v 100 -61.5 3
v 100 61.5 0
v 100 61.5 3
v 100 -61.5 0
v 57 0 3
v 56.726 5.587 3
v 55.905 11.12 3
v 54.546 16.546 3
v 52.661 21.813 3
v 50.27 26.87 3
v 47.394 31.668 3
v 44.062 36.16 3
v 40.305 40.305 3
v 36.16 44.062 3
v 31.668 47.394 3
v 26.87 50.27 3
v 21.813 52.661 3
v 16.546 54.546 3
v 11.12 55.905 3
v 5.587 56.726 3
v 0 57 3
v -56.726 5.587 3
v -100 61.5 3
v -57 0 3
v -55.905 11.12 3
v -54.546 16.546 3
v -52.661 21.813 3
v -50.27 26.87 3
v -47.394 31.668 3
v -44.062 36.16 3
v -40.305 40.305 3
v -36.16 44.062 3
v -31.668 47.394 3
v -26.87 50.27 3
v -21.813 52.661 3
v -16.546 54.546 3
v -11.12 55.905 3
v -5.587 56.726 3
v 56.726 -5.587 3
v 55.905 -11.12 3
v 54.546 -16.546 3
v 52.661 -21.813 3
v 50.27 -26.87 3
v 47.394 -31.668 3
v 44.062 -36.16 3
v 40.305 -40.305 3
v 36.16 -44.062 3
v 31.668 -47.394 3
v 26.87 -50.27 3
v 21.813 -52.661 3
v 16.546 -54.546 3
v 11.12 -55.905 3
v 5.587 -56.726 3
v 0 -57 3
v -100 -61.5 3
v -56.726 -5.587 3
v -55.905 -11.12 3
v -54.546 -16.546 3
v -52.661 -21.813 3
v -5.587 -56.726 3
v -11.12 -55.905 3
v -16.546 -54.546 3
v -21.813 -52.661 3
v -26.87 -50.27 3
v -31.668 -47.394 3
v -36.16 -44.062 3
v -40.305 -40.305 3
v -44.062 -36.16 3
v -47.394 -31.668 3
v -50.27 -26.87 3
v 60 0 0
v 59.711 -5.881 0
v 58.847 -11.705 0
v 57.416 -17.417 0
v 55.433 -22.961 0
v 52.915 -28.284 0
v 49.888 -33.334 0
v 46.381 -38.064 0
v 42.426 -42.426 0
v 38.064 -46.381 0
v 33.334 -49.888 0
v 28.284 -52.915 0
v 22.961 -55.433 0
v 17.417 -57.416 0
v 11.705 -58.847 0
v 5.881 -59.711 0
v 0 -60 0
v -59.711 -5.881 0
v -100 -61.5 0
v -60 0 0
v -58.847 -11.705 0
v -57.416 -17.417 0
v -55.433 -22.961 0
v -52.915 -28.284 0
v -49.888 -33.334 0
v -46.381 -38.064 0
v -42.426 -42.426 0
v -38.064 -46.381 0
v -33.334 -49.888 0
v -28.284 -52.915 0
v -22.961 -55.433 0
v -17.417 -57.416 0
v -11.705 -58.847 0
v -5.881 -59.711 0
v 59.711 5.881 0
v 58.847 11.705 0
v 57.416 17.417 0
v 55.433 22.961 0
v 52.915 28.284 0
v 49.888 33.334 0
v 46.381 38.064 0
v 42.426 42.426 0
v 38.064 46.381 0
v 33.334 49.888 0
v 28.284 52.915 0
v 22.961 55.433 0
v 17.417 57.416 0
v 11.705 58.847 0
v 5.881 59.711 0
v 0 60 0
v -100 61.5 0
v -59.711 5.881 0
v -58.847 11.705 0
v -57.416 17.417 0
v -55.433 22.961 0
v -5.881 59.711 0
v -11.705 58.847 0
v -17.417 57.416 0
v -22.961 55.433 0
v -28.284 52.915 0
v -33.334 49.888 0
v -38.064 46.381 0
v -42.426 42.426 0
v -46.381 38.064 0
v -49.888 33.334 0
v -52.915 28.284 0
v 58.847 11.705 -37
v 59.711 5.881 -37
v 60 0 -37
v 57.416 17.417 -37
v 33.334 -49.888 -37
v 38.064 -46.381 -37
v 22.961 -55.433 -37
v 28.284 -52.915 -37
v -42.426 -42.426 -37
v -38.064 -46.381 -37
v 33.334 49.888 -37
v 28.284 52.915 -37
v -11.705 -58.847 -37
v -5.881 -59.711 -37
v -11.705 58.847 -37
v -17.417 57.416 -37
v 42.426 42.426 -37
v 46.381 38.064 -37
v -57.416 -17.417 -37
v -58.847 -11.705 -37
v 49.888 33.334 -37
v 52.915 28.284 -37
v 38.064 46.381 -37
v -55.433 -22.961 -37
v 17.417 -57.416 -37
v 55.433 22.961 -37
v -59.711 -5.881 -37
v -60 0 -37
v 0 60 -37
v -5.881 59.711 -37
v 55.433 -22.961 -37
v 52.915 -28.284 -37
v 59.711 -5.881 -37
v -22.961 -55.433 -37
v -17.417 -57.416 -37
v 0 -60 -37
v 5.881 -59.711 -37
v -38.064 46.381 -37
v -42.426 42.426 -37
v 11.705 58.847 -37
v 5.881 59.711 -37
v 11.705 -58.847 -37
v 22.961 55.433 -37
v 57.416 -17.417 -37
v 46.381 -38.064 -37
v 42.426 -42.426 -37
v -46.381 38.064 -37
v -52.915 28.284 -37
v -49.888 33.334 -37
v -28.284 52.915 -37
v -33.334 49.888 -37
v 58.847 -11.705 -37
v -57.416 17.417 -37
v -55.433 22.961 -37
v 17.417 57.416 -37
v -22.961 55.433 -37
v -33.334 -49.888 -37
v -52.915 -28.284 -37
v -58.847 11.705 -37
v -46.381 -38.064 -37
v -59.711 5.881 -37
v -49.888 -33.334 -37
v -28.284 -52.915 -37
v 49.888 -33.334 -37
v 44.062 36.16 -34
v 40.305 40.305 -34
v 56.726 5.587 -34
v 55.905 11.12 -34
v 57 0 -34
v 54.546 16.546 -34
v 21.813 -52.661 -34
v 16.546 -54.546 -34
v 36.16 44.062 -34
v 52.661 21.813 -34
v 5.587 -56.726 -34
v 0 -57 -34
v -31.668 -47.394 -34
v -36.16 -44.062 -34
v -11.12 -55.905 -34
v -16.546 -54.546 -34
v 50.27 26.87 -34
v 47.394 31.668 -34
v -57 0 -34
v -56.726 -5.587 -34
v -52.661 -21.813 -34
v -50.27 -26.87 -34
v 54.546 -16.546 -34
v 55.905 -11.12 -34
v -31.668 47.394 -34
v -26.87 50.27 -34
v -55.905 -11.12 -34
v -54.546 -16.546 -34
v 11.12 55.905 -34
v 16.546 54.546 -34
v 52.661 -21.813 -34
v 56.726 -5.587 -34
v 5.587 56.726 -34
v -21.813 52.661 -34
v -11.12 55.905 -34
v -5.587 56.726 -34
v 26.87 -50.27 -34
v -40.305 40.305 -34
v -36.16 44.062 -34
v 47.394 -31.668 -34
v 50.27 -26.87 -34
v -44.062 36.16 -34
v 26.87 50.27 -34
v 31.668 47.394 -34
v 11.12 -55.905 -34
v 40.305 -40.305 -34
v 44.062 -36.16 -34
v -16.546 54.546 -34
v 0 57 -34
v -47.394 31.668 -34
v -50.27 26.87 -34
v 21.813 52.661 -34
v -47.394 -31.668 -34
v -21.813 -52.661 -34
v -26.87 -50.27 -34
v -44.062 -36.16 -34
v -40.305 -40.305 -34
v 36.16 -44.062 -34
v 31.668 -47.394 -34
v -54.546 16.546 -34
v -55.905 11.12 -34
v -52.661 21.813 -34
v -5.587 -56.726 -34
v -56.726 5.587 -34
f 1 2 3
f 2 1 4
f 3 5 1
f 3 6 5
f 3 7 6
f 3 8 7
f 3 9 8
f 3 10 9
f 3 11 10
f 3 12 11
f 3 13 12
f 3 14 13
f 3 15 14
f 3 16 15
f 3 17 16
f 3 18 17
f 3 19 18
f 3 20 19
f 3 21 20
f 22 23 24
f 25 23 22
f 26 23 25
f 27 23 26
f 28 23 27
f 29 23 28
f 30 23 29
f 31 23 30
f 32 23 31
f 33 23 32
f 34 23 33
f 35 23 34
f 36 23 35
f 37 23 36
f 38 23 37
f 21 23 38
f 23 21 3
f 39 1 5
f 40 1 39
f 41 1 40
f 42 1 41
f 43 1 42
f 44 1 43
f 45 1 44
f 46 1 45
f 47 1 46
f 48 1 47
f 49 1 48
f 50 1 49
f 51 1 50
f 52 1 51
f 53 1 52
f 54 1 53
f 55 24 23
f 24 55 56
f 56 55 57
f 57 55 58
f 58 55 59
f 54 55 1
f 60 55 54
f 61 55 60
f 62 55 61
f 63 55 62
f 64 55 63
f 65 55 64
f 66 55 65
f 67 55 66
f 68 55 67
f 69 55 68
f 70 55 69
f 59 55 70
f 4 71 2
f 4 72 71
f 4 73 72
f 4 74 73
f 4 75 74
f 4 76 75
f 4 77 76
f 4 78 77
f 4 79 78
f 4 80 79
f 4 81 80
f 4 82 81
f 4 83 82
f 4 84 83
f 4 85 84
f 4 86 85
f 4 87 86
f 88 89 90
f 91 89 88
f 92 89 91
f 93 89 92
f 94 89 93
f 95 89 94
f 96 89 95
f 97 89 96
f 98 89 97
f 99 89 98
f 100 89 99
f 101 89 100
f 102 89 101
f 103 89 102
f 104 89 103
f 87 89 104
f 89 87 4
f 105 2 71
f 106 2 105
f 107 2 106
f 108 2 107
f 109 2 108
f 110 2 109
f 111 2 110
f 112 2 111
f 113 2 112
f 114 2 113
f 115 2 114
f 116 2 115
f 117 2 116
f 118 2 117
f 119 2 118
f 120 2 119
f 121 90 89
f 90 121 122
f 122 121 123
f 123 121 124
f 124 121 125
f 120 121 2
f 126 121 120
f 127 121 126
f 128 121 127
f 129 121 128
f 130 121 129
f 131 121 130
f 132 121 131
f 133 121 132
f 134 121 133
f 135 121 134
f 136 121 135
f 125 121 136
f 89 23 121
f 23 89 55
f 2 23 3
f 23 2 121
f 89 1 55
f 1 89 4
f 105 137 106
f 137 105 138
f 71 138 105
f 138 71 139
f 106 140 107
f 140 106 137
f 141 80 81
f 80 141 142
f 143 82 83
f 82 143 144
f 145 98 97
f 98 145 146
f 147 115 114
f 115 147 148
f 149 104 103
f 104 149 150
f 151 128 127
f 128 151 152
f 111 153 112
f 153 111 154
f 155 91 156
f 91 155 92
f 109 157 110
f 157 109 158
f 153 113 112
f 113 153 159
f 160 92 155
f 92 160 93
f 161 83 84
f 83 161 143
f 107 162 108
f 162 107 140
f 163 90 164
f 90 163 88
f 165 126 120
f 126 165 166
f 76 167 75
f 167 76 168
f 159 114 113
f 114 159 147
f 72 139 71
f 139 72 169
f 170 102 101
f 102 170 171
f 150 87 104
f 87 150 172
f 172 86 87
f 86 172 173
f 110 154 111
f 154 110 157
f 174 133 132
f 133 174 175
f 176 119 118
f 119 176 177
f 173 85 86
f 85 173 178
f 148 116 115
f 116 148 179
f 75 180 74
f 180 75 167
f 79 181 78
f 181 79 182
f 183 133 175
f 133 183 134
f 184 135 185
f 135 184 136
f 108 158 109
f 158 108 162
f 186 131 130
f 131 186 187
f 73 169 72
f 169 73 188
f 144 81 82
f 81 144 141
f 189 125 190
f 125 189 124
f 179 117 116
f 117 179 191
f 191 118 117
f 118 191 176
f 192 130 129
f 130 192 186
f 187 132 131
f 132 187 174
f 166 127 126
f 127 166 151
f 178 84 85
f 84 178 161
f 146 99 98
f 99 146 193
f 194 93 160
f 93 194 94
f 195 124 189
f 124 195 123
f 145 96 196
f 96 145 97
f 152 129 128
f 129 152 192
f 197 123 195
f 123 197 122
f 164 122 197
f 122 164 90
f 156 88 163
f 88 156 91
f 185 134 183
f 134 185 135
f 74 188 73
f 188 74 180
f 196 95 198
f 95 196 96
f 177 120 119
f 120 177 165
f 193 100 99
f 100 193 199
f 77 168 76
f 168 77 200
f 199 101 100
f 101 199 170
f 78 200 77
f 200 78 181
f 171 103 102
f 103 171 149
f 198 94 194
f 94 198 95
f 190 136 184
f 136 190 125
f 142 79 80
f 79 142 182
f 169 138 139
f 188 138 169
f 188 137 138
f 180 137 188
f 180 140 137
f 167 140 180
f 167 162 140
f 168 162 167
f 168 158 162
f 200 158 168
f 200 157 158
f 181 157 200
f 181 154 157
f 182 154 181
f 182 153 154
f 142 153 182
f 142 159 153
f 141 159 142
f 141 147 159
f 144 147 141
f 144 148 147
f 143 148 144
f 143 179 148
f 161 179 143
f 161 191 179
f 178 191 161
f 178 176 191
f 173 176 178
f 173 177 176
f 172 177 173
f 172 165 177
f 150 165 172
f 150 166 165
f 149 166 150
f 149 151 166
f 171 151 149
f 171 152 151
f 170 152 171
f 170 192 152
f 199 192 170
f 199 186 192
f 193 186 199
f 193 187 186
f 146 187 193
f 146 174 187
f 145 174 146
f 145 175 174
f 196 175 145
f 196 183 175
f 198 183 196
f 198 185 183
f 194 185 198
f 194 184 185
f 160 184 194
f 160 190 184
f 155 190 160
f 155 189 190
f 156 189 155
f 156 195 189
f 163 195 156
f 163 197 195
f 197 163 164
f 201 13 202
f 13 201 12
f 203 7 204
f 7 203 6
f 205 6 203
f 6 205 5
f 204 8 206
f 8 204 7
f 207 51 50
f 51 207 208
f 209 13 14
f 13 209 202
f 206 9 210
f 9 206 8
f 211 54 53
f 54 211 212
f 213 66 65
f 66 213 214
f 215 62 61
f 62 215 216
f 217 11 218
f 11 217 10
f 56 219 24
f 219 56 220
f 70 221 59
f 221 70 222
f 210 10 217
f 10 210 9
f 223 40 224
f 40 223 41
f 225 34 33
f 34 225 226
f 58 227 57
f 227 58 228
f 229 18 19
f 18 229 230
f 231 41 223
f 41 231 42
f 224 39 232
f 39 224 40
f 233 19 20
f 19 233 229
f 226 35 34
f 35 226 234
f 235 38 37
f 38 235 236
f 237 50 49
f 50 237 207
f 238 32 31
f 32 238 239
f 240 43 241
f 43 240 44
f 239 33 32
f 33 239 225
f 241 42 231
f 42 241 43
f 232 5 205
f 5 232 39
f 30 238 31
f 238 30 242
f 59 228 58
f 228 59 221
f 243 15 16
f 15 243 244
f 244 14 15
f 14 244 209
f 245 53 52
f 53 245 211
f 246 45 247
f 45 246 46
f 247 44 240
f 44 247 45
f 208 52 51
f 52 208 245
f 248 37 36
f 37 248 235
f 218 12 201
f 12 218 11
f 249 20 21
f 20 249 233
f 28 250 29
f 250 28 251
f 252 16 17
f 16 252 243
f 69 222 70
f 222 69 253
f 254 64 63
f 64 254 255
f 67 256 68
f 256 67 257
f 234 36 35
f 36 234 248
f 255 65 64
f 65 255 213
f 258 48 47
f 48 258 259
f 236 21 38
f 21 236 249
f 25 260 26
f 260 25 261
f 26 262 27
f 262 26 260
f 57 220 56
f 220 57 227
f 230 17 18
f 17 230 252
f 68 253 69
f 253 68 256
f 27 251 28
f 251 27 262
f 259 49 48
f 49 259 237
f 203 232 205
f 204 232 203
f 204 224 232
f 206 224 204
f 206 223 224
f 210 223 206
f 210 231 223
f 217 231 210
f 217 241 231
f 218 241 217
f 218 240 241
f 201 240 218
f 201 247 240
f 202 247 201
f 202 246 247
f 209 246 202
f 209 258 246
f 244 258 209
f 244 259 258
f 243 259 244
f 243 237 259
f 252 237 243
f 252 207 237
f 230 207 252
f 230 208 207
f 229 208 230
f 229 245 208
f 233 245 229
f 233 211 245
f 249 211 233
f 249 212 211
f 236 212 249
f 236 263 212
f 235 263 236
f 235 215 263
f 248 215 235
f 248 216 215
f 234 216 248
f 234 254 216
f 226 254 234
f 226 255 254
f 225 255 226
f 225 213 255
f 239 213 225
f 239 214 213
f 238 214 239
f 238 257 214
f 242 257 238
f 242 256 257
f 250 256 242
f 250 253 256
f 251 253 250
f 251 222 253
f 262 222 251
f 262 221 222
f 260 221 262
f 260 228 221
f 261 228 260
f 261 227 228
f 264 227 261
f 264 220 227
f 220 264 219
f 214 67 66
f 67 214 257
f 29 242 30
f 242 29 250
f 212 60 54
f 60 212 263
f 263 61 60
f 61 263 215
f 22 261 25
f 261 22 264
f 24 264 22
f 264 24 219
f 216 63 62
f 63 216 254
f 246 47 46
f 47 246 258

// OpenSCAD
// ============================================================
// Parametrische Flaschenhalterung mit Eckstützen und Zylinderaufnahme
// ============================================================
// Aufbau:
//   z =  platten_dicke  → Oberkante Platte = Öffnung Zylinder (bündig)
//   z =  0              → Unterkante Platte
//   z = -stuetzen_hoehe → Unterkante Stützen / max. Boden Zylinder
// ============================================================

// --- Parameter (anpassbar) ---
laenge            = 200;  // Länge der Grundplatte in mm
breite            = 123;  // Breite der Grundplatte in mm
stuetzen_hoehe    =  50;  // Höhe der Eckstützen in mm
flaschen_dm       = 114;  // Innendurchmesser des Zylinders (Flaschendurchmesser) in mm
zylinder_tiefe    =  40;  // Gewünschte Tiefe des Zylinders in mm
                          // Wird automatisch auf stuetzen_hoehe begrenzt!
mit_stuetzen      = false; // true = Eckstützen an / false = Eckstützen aus

// --- Konstanten ---
platten_dicke     =   3;  // Dicke der Grundplatte in mm (0,3 cm)
stuetzen_breite   =   5;  // Querschnitt der quadratischen Stützen in mm (0,5 cm)
wandstaerke       =   3;  // Wandstärke des Zylinders in mm

// --- Effektive Zylindertiefe: nie tiefer als die Stützen ---
eff_tiefe = min(zylinder_tiefe, stuetzen_hoehe);

// --- Kreisauflösung ---
$fn = 64;

// ============================================================
// Modul: Grundplatte mit Ausschnitt für den Zylinder
// ============================================================
module grundplatte() {
    difference() {
        translate([-laenge/2, -breite/2, 0])
            cube([laenge, breite, platten_dicke]);

        // Ausschnitt für Zylinder (Außen-DM)
        translate([0, 0, -0.1])
            cylinder(h = platten_dicke + 0.2, d = flaschen_dm + 2 * wandstaerke);
    }
}

// ============================================================
// Modul: Hohler Zylinder hängt UNTER der Grundplatte.
// ============================================================
module flaschenhalter() {
    translate([0, 0, platten_dicke - eff_tiefe])
        difference() {
            cylinder(h = eff_tiefe, d = flaschen_dm + 2 * wandstaerke);
            translate([0, 0, wandstaerke])
                cylinder(h = eff_tiefe, d = flaschen_dm);
        }
}

// ============================================================
// Modul: Eine einzelne Eckstütze
// ============================================================
module stuetze() {
    cube([stuetzen_breite, stuetzen_breite, stuetzen_hoehe]);
}

// ============================================================
// Modul: Alle vier Eckstützen positionieren
// ============================================================
module eckstuetzen() {
    x = laenge/2 - stuetzen_breite;
    y = breite/2  - stuetzen_breite;

    // Vorne links
    translate([-laenge/2, -breite/2, -stuetzen_hoehe]) stuetze();
    // Vorne rechts
    translate([x,          -breite/2, -stuetzen_hoehe]) stuetze();
    // Hinten links
    translate([-laenge/2,  y,         -stuetzen_hoehe]) stuetze();
    // Hinten rechts
    translate([x,          y,         -stuetzen_hoehe]) stuetze();
}

// ============================================================
// Zusammenbau
// ============================================================
union() {
    grundplatte();
    flaschenhalter();
    if (mit_stuetzen) {
        eckstuetzen();
    }
}
